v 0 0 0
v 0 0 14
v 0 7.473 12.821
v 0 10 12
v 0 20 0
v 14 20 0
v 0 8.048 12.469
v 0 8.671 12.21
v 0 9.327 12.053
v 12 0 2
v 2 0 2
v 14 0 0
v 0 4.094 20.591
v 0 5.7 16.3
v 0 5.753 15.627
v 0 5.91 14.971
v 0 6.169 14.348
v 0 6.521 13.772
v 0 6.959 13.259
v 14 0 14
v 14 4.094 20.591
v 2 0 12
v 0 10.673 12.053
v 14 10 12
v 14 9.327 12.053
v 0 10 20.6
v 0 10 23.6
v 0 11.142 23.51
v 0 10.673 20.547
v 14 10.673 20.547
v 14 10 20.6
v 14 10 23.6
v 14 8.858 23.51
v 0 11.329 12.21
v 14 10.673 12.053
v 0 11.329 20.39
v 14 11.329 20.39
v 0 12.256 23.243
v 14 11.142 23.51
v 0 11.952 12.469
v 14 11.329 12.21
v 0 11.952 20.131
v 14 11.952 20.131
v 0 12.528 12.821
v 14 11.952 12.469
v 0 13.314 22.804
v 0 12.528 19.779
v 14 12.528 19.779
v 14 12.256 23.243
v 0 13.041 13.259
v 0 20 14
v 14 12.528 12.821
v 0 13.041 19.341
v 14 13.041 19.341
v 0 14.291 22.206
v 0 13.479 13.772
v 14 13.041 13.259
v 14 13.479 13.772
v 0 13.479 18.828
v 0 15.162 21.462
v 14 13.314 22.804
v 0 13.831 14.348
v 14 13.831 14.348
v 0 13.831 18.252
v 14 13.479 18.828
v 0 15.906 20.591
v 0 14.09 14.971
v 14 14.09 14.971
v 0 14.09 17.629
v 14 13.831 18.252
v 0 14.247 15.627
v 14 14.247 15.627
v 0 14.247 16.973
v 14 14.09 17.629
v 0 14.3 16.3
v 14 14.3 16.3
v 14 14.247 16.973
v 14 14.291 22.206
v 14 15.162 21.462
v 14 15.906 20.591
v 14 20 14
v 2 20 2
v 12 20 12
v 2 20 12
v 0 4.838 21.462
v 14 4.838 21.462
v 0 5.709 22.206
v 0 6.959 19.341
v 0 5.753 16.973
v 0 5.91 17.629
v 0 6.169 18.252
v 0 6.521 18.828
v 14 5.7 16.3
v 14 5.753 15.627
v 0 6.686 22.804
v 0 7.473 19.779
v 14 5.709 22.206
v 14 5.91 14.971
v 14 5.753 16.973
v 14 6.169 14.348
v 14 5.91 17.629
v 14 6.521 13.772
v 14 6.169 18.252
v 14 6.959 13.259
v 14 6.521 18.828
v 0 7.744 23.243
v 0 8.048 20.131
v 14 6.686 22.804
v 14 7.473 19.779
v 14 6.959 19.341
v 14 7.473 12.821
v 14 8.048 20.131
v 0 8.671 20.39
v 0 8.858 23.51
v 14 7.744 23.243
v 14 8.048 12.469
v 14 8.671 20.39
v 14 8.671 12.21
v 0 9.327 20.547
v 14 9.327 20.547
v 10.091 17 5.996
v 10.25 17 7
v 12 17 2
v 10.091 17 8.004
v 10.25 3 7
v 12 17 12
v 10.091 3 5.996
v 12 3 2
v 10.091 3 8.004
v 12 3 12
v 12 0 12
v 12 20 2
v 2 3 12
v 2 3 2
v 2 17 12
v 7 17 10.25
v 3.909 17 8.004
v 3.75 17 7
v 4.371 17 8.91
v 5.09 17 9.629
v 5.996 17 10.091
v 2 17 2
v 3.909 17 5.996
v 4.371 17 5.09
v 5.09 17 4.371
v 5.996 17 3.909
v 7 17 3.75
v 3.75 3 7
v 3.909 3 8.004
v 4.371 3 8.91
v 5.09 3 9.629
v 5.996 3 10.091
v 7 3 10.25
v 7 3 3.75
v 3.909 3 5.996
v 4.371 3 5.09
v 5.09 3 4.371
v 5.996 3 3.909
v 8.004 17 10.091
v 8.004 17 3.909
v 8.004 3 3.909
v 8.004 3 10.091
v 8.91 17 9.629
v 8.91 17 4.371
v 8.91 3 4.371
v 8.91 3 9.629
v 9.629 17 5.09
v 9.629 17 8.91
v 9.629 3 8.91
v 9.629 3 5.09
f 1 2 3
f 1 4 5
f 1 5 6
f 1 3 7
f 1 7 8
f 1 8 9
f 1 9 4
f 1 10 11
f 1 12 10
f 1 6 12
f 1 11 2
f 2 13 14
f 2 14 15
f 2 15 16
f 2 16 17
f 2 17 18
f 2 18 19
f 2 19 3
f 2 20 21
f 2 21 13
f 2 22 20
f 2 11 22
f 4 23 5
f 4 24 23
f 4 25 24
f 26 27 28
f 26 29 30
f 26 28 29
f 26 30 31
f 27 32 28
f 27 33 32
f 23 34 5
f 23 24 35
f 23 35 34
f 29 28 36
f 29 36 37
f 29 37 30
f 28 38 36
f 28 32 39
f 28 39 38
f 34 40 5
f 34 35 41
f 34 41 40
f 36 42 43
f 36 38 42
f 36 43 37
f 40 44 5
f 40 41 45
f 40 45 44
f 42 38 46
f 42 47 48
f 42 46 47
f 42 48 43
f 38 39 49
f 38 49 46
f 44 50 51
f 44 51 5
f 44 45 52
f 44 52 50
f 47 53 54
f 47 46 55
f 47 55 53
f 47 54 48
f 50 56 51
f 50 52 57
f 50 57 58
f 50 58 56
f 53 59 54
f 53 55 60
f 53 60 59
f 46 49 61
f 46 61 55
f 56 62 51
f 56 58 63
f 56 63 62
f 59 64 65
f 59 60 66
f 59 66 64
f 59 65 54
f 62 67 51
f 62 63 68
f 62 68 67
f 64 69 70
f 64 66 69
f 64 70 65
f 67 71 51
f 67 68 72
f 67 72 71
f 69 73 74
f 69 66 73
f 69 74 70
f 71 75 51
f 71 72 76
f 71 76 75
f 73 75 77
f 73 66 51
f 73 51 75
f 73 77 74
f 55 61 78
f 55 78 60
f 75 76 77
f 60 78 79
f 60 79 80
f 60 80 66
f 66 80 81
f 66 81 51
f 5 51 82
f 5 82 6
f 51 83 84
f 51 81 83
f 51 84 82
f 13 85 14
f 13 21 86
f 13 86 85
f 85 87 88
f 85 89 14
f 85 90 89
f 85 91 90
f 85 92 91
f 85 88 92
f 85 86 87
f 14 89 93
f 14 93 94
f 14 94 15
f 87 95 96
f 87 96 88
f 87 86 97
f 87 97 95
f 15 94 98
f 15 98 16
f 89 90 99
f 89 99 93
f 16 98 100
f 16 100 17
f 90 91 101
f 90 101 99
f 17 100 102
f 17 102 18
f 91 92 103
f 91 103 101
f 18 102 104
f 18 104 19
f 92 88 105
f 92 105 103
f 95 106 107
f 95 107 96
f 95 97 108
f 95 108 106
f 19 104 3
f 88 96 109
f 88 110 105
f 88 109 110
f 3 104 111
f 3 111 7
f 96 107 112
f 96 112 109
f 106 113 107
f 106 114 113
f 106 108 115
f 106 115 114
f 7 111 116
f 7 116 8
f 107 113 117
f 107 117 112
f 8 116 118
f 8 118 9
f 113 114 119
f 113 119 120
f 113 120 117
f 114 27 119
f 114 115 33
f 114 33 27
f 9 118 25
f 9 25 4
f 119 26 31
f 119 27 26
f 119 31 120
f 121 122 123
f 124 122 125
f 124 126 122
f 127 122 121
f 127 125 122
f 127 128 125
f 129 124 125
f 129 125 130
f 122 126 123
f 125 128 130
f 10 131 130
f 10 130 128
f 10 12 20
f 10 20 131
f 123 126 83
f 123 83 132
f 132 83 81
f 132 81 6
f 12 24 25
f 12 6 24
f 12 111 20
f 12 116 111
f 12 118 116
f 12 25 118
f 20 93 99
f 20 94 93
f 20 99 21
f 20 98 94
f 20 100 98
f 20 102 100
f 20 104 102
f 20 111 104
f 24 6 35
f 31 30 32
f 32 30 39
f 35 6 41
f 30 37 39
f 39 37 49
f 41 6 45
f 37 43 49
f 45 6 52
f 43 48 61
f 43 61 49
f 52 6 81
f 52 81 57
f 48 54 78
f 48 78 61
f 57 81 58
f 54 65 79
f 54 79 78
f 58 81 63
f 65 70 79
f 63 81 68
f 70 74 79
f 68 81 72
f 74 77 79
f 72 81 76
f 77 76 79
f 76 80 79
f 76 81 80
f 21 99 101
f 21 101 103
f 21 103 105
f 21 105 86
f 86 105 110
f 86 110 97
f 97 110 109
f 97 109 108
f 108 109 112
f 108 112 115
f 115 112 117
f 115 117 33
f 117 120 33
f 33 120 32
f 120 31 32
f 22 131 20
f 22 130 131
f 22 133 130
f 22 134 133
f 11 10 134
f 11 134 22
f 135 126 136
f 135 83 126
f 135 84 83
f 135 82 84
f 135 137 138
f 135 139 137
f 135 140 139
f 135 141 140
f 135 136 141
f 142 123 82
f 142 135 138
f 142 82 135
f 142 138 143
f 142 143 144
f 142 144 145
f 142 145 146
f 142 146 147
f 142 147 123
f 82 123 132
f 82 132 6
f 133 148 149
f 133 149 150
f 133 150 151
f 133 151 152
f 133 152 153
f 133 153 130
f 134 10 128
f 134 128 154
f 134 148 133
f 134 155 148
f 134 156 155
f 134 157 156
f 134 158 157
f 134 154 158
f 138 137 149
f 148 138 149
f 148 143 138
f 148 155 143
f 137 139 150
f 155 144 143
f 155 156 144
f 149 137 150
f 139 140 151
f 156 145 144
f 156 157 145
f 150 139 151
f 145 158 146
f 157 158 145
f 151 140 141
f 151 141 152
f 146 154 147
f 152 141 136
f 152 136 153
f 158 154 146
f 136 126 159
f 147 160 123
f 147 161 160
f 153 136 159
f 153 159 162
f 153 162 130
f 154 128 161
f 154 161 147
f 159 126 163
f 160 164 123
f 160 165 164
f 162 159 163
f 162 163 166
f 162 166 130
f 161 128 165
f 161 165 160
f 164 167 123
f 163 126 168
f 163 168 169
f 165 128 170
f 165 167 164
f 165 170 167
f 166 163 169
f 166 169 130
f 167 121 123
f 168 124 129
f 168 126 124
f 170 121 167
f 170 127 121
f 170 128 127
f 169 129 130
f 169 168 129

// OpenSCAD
include <../../parameters.scad>

module 888_5006() {
    size = 20;
    wall_around_nut = 2;
    difference() {
        hull() {
            cube([M6_square_nut_diameter+wall_around_nut*2, size, M6_square_nut_diameter+wall_around_nut*2]);
            translate([0, size/2, M6_square_nut_diameter+wall_around_nut+M8_screw_diameter/2])
                rotate([0, 90, 0])
                    cylinder(d=M8_screw_diameter+6, h=M6_square_nut_diameter+wall_around_nut*2, $fn=40);
        }
        
        translate([M6_square_nut_diameter/2+wall_around_nut, 0, M6_square_nut_diameter/2+wall_around_nut])
            rotate([-90, 0, 0])
                cylinder(d=M6_screw_diameter, h=size, $fn=20);
        
        translate([-0.1, size/2, M6_square_nut_diameter+wall_around_nut+M8_screw_diameter/2])
            rotate([0, 90, 0])
                cylinder(d=M8_screw_diameter, h=M6_square_nut_diameter+0.2+wall_around_nut*2, $fn=40);
        
        translate([wall_around_nut, -0.1, wall_around_nut])
            cube([M6_square_nut_diameter, M6_square_nut_height+0.1, M6_square_nut_diameter]);
        
        translate([wall_around_nut, size-M6_square_nut_height, wall_around_nut])
            cube([M6_square_nut_diameter, M6_square_nut_height+0.1, M6_square_nut_diameter]);
    }
}

888_5006();
